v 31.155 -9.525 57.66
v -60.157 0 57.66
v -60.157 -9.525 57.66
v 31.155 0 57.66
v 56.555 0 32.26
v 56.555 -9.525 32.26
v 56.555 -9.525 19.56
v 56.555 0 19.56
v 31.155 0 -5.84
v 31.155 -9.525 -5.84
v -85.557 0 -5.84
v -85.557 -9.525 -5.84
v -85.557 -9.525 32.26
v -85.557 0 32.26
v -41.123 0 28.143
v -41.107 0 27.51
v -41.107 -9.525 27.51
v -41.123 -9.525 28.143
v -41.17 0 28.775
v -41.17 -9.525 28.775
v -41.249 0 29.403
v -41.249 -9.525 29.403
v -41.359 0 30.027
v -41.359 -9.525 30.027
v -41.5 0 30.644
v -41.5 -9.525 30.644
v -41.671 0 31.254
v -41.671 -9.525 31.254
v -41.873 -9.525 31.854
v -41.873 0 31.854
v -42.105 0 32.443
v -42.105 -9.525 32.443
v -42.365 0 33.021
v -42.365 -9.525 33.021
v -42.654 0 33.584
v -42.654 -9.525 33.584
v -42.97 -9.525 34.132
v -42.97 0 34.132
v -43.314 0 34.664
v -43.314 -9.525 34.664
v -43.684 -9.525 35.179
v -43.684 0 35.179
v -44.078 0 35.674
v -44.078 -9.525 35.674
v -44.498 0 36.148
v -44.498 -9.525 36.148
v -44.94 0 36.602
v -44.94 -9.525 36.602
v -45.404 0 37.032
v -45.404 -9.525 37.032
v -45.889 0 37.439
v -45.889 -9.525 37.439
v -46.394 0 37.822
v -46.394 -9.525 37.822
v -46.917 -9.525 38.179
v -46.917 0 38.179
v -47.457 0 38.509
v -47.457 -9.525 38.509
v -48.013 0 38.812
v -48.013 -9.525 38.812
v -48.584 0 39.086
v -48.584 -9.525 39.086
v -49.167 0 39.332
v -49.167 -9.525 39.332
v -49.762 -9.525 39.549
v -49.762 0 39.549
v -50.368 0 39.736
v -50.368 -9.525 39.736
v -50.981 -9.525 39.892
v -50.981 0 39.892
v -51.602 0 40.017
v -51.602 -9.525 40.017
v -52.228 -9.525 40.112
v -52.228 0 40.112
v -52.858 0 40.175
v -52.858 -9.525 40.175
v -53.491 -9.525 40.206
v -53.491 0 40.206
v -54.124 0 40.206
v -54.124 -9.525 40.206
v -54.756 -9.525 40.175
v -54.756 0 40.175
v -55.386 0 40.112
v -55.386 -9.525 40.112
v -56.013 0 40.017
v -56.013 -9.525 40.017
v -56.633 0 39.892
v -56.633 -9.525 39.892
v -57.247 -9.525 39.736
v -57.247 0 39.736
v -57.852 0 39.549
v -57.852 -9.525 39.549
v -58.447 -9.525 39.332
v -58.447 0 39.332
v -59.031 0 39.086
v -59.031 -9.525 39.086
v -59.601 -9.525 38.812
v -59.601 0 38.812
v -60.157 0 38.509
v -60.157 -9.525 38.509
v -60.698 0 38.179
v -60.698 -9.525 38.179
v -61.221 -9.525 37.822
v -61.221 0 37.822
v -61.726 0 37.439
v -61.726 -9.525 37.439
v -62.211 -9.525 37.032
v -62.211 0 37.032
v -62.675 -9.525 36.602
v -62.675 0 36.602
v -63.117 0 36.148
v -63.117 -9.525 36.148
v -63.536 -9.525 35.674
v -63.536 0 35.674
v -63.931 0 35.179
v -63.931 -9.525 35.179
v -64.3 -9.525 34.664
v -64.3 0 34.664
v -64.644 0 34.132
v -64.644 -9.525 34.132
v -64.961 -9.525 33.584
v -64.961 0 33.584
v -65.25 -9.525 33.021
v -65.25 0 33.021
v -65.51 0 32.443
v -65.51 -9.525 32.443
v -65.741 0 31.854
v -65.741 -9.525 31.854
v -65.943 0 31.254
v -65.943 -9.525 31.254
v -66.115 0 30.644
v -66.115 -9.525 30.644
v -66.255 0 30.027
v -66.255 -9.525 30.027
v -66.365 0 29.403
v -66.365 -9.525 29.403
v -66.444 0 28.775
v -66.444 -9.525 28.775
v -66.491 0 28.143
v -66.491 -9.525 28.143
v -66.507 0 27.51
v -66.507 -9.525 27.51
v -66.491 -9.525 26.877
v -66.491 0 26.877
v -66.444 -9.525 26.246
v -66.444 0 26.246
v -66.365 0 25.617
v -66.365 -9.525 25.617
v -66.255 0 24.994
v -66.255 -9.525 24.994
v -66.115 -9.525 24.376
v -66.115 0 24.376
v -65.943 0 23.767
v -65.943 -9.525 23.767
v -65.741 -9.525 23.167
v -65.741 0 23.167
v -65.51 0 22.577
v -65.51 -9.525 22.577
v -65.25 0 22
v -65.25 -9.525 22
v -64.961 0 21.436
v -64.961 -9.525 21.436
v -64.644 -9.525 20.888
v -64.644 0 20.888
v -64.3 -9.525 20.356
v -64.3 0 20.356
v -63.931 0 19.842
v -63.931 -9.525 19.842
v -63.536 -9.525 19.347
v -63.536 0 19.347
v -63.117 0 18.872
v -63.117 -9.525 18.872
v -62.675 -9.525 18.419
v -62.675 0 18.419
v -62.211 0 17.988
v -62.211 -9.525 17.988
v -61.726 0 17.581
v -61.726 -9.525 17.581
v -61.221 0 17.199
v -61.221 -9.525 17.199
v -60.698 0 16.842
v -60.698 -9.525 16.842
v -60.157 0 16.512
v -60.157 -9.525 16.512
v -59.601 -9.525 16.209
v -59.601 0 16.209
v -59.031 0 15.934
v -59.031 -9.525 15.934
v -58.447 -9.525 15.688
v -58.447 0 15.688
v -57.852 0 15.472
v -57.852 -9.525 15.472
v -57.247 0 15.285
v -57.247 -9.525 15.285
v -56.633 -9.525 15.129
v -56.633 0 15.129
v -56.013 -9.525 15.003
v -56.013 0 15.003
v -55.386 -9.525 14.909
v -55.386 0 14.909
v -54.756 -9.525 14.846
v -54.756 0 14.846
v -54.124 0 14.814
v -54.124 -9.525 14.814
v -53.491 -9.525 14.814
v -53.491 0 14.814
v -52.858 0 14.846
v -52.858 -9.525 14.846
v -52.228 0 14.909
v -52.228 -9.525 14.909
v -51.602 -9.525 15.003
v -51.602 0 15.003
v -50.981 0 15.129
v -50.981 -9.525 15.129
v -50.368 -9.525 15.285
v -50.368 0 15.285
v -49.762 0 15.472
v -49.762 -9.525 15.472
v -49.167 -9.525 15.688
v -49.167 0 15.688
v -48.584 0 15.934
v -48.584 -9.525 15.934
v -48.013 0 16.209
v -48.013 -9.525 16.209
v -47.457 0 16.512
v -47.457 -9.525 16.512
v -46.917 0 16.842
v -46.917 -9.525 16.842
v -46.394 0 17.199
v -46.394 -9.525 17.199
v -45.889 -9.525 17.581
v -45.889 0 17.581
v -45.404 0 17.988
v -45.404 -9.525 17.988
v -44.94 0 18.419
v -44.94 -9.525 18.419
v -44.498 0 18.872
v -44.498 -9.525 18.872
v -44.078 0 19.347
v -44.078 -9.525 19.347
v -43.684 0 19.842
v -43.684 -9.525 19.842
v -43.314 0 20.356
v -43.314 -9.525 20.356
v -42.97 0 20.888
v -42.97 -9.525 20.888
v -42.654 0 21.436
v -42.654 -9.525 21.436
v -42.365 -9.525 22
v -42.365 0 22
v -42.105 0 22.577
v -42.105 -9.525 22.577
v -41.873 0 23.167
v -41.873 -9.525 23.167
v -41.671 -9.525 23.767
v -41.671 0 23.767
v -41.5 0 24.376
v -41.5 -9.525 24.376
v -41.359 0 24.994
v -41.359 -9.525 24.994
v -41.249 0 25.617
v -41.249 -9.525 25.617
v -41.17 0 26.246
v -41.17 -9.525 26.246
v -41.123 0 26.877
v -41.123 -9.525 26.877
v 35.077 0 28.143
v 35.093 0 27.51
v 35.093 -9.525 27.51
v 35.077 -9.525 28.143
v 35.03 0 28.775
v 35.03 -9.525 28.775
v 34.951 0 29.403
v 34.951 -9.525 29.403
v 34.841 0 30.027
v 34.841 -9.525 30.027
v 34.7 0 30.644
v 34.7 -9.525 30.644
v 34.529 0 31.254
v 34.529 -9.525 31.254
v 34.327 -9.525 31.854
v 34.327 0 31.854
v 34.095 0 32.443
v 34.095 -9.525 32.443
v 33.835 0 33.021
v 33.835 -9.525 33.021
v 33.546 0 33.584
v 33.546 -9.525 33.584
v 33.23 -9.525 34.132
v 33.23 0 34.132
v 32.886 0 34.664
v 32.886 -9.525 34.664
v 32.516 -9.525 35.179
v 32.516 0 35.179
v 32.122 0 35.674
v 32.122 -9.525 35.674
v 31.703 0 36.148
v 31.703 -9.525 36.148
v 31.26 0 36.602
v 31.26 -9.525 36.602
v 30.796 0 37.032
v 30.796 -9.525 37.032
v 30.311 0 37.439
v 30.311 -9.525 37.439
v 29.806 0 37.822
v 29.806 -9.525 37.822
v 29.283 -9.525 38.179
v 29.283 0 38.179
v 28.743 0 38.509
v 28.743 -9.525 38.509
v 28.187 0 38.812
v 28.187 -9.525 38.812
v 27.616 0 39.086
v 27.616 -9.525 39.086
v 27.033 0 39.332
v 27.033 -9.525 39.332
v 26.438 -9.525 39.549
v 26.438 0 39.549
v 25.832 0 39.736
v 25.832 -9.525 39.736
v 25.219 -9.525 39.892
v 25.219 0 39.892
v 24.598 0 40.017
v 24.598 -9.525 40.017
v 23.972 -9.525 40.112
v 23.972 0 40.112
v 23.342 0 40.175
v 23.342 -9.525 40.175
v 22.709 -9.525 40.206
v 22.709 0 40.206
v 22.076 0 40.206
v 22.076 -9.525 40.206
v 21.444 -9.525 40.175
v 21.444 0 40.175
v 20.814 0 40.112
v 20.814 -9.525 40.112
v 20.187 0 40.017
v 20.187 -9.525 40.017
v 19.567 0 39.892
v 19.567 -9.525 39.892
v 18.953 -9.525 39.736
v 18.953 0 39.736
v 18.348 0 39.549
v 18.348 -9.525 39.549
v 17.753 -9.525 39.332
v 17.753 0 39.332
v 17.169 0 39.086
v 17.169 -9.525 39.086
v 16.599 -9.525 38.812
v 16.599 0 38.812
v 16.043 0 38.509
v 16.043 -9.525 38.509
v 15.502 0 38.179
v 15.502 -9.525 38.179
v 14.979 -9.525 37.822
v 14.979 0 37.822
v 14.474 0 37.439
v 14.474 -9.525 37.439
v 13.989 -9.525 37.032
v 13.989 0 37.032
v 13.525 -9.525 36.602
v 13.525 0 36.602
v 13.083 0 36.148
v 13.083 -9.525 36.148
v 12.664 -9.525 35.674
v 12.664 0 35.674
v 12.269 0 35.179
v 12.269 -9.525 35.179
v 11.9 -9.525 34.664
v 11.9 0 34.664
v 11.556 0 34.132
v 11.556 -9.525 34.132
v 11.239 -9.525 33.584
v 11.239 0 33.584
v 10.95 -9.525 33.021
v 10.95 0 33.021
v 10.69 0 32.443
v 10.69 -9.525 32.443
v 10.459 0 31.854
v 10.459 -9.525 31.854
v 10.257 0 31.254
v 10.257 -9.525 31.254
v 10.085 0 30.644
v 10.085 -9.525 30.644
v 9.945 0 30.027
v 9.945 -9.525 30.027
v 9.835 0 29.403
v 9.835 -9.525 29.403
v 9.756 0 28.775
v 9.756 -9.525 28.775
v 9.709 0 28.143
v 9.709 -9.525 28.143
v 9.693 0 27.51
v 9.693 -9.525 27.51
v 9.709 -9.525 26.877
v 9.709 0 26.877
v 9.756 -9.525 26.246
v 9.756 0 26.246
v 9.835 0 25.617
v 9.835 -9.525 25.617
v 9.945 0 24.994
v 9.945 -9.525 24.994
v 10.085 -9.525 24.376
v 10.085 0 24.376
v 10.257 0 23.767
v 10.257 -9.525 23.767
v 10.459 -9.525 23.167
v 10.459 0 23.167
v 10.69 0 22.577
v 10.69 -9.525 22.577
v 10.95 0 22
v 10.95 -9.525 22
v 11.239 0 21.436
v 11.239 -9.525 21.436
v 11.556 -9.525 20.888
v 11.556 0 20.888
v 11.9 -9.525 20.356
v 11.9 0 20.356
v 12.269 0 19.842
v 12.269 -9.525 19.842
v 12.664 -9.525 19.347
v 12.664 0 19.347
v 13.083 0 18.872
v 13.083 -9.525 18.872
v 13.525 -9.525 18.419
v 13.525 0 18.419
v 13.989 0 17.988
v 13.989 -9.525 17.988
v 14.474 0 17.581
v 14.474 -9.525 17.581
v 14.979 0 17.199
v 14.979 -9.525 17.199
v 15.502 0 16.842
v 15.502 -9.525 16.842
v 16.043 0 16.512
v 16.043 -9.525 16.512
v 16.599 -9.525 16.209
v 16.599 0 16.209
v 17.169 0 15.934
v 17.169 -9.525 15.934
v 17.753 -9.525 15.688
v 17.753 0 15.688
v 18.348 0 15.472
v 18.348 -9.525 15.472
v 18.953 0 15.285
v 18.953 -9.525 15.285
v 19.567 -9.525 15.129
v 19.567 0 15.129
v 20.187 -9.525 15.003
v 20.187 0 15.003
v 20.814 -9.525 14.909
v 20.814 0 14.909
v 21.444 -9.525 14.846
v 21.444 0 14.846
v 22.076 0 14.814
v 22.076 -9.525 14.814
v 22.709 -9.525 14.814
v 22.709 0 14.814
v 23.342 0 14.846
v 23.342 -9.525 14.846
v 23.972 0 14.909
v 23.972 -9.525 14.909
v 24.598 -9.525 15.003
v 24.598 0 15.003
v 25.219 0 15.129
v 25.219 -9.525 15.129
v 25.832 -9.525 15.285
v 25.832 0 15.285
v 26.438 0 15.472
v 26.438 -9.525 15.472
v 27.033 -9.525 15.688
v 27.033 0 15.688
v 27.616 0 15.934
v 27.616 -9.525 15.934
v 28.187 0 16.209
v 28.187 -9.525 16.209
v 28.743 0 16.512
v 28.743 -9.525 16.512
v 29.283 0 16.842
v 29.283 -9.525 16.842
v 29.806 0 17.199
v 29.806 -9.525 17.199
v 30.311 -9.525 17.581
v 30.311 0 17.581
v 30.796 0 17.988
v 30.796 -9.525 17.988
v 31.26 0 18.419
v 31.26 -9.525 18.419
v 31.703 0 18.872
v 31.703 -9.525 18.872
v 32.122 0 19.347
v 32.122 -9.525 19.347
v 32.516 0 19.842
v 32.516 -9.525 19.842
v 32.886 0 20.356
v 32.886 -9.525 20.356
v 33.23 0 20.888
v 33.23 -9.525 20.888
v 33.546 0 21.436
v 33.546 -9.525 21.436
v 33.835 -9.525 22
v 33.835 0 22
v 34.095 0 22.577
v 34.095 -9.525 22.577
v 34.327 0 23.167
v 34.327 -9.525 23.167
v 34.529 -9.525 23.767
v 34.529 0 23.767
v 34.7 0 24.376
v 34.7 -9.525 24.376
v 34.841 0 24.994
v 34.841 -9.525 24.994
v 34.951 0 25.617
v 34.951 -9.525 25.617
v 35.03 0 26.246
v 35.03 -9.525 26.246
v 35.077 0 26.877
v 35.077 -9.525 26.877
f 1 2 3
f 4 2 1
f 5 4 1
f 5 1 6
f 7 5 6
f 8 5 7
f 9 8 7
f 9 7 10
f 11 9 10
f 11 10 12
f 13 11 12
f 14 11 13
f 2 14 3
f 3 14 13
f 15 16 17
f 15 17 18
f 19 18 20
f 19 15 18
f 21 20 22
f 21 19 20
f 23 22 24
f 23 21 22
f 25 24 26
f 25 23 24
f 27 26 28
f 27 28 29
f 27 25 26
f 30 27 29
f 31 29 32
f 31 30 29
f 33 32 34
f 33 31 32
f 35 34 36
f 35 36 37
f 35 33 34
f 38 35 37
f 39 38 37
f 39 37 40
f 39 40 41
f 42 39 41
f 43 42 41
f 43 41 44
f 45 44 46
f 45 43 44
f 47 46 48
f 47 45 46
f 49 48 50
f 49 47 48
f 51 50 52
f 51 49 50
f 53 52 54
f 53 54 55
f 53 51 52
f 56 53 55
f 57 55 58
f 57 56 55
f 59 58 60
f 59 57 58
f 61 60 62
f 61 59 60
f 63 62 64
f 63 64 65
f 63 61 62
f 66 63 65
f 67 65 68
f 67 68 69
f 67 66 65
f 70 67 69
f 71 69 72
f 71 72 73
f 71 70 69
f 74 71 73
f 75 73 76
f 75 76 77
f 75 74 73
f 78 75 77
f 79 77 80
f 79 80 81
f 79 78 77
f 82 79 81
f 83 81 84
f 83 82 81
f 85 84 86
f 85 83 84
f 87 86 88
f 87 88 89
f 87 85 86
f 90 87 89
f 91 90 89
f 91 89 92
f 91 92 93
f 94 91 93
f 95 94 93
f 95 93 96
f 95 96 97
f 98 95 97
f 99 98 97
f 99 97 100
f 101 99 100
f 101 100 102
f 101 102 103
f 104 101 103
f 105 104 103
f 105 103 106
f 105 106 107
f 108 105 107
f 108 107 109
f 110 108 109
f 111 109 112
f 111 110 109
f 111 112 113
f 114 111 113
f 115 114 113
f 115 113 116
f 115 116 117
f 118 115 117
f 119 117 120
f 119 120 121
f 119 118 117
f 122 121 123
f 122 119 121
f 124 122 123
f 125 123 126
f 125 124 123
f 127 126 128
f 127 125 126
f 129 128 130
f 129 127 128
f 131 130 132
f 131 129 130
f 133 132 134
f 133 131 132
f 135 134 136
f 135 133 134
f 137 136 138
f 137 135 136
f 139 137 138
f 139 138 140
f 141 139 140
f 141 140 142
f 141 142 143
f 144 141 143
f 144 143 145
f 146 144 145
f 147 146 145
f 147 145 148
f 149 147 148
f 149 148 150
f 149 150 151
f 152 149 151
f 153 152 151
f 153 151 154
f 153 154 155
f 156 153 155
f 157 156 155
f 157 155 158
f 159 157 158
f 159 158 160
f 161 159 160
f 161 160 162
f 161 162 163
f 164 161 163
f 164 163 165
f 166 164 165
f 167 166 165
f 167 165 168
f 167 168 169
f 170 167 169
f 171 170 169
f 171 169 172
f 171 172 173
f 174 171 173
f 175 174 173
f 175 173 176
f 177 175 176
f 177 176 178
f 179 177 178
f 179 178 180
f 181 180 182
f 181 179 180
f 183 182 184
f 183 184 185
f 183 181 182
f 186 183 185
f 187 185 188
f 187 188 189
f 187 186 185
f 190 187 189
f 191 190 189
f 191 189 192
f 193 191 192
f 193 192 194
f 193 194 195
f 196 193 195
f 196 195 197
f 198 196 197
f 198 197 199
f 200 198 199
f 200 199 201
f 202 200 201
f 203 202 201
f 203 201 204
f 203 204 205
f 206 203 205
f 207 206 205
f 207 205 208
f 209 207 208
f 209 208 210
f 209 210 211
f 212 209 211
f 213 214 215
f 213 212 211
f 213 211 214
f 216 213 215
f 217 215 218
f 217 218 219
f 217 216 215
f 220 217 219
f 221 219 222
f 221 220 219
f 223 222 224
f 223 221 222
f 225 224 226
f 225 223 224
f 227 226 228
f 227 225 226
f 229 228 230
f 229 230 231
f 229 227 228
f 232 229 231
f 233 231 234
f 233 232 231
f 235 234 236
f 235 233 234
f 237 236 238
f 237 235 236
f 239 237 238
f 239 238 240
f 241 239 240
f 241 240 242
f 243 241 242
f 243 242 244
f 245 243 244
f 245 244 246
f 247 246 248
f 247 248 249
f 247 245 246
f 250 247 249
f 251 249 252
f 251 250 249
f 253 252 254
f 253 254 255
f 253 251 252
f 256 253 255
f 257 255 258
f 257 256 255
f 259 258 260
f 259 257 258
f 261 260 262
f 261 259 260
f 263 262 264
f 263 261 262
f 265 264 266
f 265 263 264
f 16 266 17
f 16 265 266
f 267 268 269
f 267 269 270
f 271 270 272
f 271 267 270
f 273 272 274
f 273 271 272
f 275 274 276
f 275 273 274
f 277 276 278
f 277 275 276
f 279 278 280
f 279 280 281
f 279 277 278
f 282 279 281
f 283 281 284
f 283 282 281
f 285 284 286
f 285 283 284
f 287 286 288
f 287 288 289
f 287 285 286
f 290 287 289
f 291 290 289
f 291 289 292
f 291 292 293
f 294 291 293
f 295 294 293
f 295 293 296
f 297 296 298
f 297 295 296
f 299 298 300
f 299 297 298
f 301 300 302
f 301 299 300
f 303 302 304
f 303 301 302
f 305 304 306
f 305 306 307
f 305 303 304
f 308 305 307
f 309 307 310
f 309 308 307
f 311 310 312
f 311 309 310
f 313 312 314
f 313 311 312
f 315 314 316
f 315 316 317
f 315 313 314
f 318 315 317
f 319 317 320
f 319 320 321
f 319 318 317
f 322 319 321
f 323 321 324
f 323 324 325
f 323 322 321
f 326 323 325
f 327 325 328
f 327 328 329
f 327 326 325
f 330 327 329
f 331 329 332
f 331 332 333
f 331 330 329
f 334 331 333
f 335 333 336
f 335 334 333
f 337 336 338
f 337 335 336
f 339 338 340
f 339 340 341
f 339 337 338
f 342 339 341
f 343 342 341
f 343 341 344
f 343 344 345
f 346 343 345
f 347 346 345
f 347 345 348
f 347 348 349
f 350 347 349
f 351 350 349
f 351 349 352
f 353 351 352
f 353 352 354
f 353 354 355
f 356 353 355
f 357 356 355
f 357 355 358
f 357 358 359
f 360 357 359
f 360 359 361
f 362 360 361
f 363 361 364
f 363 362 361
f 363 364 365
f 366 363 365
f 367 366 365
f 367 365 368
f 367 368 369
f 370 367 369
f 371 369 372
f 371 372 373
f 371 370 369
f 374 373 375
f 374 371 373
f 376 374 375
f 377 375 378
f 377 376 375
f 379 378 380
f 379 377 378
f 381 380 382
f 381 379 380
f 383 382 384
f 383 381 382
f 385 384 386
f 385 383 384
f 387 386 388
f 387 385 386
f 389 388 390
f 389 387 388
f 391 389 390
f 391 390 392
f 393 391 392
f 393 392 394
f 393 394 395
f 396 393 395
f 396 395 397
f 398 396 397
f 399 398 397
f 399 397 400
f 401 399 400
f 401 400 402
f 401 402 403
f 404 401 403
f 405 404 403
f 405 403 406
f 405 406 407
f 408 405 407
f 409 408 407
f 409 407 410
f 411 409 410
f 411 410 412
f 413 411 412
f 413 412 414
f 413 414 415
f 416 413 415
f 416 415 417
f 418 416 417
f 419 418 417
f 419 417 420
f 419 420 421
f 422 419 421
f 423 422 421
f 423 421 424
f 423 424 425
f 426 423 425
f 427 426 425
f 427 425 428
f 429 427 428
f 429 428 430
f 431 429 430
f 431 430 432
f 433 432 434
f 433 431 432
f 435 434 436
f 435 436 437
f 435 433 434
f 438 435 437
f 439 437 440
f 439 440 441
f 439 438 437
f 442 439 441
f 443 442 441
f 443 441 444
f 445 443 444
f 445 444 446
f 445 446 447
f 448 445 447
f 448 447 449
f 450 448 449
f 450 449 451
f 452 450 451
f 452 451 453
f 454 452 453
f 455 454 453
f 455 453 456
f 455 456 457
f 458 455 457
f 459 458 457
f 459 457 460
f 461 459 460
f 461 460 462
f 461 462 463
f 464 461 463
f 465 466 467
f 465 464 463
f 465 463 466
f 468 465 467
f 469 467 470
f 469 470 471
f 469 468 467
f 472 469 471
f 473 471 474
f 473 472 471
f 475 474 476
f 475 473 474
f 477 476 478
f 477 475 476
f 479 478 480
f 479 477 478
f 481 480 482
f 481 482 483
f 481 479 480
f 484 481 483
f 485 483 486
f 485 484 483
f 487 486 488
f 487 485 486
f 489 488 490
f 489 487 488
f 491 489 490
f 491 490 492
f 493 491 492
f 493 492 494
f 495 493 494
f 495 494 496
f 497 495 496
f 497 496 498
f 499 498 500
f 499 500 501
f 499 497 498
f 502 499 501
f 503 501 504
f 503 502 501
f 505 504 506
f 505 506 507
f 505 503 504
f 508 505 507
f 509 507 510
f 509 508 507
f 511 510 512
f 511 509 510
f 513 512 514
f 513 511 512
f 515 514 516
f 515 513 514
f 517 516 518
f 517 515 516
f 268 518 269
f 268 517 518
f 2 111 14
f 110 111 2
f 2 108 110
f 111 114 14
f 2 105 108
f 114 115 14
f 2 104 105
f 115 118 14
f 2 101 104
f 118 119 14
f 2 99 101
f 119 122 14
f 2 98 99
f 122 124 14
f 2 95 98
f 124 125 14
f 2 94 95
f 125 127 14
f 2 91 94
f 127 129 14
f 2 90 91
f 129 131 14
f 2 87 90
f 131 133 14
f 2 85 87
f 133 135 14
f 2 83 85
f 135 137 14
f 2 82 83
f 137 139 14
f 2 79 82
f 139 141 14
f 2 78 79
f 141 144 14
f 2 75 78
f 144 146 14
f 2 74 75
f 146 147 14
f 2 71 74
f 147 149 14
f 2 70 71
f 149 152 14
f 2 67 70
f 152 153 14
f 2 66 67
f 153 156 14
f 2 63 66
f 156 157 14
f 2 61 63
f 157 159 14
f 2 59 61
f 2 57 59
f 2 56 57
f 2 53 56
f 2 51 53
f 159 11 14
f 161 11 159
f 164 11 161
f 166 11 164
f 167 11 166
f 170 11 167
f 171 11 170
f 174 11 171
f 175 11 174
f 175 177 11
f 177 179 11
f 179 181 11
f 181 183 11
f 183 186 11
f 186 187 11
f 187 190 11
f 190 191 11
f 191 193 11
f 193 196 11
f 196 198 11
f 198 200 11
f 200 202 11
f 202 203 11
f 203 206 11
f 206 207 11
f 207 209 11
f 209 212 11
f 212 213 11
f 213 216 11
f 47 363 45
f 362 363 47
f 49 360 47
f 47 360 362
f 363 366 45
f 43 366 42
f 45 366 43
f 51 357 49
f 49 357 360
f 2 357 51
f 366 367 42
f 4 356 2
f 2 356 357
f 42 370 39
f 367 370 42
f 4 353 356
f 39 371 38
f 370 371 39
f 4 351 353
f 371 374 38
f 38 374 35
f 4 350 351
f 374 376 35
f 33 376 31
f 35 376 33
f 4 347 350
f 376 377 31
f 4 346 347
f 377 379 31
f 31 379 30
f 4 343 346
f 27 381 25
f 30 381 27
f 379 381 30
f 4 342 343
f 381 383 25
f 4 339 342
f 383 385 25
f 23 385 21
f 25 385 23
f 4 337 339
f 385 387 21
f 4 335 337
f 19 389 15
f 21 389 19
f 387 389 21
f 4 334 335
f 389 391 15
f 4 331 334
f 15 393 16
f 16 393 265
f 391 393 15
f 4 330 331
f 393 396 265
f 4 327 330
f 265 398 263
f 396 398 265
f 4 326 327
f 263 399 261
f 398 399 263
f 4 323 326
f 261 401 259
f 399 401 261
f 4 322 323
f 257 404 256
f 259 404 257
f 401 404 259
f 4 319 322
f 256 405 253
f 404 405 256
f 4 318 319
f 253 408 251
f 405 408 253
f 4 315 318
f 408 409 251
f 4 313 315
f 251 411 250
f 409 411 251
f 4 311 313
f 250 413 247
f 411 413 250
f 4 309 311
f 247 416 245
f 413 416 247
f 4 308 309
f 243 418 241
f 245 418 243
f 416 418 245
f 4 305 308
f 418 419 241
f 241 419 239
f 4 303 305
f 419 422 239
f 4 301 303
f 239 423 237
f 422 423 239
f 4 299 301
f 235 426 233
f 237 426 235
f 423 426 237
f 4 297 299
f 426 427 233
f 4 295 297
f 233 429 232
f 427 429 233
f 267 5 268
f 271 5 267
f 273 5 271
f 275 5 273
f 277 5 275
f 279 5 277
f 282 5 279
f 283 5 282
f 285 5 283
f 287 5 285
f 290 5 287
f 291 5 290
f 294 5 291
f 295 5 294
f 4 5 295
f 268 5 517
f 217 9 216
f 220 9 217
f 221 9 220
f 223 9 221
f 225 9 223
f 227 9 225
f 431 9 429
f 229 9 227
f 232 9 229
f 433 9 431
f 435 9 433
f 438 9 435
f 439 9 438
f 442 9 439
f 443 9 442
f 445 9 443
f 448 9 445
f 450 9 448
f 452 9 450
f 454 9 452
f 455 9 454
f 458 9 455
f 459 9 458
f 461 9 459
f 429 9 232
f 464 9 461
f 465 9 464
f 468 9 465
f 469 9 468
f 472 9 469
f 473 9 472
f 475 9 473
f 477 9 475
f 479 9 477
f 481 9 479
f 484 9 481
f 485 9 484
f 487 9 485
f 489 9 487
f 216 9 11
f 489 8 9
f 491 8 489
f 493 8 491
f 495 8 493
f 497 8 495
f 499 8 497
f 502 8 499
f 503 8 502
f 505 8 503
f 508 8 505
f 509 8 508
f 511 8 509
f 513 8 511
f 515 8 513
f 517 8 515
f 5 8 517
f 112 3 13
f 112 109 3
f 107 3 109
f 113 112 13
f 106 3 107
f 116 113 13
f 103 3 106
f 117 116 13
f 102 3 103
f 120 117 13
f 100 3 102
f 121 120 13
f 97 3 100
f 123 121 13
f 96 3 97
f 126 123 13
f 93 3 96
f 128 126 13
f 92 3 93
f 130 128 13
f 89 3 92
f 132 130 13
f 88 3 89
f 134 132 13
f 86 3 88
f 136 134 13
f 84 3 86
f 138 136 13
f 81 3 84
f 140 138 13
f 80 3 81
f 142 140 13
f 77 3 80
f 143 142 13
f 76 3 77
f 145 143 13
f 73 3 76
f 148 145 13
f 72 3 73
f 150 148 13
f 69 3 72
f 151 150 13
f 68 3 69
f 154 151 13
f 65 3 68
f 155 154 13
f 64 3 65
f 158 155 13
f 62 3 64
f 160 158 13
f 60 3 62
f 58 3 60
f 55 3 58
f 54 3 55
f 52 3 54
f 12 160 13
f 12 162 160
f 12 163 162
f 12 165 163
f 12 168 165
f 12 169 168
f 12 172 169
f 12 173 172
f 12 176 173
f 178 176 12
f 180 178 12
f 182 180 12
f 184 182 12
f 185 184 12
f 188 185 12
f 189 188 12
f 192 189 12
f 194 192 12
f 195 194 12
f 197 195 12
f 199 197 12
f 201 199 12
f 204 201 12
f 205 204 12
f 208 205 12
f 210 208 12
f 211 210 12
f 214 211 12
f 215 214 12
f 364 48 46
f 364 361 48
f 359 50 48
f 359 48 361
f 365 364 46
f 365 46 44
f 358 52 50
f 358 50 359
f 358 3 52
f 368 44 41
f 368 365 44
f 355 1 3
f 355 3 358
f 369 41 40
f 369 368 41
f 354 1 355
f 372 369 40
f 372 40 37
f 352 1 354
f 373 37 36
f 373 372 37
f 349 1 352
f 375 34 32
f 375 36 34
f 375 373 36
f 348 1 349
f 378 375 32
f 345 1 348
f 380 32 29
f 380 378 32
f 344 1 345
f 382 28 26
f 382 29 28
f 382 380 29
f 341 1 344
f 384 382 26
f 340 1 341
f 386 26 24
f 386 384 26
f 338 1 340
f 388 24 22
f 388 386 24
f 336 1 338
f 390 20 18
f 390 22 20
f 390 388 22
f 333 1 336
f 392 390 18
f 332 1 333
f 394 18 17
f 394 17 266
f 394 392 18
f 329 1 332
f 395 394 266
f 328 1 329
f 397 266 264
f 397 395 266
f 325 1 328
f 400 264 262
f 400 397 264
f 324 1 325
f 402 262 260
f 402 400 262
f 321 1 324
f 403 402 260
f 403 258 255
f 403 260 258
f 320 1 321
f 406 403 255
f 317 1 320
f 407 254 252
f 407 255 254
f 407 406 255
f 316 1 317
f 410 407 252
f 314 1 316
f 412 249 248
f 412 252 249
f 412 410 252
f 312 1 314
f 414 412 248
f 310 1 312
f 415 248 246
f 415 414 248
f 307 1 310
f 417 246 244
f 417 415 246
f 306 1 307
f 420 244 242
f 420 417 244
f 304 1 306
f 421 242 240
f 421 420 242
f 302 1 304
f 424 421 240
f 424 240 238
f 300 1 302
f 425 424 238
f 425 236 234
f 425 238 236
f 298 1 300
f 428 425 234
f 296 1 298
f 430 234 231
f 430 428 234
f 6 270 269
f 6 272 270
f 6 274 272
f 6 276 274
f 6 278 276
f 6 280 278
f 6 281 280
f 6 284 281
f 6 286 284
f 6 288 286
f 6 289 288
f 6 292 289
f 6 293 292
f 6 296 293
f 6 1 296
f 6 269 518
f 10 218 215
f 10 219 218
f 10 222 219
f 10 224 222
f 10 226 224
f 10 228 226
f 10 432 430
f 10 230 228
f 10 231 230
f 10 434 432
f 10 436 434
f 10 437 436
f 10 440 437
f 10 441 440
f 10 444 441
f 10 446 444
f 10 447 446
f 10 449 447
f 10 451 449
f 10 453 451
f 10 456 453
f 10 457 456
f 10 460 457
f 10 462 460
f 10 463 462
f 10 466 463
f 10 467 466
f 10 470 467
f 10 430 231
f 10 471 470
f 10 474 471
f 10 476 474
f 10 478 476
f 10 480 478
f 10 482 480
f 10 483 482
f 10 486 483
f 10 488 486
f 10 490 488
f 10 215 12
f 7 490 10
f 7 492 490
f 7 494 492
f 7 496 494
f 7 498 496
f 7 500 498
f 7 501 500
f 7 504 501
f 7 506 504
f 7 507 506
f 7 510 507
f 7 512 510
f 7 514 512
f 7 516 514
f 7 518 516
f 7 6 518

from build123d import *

# Parameters (mm, degrees)
SKETCH_R  = 12.7
PAD_DEPTH = 9.525


with BuildPart() as part:
    # Sketch → Pad (new body)
    with BuildSketch(Plane.XZ):
        Polygon((-60.157258, 57.66002), (31.155391, 57.66002), (56.555391, 32.26002), (56.555391, 19.56002), (31.155391, -5.83998), (-85.557258, -5.83998), (-85.557258, 32.26002), align=None)
        with Locations((-53.807258, 27.51022)):
            Circle(SKETCH_R, mode=Mode.SUBTRACT)
        with Locations((22.392742, 27.51022)):
            Circle(SKETCH_R, mode=Mode.SUBTRACT)
    extrude(amount=PAD_DEPTH)


solid = part.part
